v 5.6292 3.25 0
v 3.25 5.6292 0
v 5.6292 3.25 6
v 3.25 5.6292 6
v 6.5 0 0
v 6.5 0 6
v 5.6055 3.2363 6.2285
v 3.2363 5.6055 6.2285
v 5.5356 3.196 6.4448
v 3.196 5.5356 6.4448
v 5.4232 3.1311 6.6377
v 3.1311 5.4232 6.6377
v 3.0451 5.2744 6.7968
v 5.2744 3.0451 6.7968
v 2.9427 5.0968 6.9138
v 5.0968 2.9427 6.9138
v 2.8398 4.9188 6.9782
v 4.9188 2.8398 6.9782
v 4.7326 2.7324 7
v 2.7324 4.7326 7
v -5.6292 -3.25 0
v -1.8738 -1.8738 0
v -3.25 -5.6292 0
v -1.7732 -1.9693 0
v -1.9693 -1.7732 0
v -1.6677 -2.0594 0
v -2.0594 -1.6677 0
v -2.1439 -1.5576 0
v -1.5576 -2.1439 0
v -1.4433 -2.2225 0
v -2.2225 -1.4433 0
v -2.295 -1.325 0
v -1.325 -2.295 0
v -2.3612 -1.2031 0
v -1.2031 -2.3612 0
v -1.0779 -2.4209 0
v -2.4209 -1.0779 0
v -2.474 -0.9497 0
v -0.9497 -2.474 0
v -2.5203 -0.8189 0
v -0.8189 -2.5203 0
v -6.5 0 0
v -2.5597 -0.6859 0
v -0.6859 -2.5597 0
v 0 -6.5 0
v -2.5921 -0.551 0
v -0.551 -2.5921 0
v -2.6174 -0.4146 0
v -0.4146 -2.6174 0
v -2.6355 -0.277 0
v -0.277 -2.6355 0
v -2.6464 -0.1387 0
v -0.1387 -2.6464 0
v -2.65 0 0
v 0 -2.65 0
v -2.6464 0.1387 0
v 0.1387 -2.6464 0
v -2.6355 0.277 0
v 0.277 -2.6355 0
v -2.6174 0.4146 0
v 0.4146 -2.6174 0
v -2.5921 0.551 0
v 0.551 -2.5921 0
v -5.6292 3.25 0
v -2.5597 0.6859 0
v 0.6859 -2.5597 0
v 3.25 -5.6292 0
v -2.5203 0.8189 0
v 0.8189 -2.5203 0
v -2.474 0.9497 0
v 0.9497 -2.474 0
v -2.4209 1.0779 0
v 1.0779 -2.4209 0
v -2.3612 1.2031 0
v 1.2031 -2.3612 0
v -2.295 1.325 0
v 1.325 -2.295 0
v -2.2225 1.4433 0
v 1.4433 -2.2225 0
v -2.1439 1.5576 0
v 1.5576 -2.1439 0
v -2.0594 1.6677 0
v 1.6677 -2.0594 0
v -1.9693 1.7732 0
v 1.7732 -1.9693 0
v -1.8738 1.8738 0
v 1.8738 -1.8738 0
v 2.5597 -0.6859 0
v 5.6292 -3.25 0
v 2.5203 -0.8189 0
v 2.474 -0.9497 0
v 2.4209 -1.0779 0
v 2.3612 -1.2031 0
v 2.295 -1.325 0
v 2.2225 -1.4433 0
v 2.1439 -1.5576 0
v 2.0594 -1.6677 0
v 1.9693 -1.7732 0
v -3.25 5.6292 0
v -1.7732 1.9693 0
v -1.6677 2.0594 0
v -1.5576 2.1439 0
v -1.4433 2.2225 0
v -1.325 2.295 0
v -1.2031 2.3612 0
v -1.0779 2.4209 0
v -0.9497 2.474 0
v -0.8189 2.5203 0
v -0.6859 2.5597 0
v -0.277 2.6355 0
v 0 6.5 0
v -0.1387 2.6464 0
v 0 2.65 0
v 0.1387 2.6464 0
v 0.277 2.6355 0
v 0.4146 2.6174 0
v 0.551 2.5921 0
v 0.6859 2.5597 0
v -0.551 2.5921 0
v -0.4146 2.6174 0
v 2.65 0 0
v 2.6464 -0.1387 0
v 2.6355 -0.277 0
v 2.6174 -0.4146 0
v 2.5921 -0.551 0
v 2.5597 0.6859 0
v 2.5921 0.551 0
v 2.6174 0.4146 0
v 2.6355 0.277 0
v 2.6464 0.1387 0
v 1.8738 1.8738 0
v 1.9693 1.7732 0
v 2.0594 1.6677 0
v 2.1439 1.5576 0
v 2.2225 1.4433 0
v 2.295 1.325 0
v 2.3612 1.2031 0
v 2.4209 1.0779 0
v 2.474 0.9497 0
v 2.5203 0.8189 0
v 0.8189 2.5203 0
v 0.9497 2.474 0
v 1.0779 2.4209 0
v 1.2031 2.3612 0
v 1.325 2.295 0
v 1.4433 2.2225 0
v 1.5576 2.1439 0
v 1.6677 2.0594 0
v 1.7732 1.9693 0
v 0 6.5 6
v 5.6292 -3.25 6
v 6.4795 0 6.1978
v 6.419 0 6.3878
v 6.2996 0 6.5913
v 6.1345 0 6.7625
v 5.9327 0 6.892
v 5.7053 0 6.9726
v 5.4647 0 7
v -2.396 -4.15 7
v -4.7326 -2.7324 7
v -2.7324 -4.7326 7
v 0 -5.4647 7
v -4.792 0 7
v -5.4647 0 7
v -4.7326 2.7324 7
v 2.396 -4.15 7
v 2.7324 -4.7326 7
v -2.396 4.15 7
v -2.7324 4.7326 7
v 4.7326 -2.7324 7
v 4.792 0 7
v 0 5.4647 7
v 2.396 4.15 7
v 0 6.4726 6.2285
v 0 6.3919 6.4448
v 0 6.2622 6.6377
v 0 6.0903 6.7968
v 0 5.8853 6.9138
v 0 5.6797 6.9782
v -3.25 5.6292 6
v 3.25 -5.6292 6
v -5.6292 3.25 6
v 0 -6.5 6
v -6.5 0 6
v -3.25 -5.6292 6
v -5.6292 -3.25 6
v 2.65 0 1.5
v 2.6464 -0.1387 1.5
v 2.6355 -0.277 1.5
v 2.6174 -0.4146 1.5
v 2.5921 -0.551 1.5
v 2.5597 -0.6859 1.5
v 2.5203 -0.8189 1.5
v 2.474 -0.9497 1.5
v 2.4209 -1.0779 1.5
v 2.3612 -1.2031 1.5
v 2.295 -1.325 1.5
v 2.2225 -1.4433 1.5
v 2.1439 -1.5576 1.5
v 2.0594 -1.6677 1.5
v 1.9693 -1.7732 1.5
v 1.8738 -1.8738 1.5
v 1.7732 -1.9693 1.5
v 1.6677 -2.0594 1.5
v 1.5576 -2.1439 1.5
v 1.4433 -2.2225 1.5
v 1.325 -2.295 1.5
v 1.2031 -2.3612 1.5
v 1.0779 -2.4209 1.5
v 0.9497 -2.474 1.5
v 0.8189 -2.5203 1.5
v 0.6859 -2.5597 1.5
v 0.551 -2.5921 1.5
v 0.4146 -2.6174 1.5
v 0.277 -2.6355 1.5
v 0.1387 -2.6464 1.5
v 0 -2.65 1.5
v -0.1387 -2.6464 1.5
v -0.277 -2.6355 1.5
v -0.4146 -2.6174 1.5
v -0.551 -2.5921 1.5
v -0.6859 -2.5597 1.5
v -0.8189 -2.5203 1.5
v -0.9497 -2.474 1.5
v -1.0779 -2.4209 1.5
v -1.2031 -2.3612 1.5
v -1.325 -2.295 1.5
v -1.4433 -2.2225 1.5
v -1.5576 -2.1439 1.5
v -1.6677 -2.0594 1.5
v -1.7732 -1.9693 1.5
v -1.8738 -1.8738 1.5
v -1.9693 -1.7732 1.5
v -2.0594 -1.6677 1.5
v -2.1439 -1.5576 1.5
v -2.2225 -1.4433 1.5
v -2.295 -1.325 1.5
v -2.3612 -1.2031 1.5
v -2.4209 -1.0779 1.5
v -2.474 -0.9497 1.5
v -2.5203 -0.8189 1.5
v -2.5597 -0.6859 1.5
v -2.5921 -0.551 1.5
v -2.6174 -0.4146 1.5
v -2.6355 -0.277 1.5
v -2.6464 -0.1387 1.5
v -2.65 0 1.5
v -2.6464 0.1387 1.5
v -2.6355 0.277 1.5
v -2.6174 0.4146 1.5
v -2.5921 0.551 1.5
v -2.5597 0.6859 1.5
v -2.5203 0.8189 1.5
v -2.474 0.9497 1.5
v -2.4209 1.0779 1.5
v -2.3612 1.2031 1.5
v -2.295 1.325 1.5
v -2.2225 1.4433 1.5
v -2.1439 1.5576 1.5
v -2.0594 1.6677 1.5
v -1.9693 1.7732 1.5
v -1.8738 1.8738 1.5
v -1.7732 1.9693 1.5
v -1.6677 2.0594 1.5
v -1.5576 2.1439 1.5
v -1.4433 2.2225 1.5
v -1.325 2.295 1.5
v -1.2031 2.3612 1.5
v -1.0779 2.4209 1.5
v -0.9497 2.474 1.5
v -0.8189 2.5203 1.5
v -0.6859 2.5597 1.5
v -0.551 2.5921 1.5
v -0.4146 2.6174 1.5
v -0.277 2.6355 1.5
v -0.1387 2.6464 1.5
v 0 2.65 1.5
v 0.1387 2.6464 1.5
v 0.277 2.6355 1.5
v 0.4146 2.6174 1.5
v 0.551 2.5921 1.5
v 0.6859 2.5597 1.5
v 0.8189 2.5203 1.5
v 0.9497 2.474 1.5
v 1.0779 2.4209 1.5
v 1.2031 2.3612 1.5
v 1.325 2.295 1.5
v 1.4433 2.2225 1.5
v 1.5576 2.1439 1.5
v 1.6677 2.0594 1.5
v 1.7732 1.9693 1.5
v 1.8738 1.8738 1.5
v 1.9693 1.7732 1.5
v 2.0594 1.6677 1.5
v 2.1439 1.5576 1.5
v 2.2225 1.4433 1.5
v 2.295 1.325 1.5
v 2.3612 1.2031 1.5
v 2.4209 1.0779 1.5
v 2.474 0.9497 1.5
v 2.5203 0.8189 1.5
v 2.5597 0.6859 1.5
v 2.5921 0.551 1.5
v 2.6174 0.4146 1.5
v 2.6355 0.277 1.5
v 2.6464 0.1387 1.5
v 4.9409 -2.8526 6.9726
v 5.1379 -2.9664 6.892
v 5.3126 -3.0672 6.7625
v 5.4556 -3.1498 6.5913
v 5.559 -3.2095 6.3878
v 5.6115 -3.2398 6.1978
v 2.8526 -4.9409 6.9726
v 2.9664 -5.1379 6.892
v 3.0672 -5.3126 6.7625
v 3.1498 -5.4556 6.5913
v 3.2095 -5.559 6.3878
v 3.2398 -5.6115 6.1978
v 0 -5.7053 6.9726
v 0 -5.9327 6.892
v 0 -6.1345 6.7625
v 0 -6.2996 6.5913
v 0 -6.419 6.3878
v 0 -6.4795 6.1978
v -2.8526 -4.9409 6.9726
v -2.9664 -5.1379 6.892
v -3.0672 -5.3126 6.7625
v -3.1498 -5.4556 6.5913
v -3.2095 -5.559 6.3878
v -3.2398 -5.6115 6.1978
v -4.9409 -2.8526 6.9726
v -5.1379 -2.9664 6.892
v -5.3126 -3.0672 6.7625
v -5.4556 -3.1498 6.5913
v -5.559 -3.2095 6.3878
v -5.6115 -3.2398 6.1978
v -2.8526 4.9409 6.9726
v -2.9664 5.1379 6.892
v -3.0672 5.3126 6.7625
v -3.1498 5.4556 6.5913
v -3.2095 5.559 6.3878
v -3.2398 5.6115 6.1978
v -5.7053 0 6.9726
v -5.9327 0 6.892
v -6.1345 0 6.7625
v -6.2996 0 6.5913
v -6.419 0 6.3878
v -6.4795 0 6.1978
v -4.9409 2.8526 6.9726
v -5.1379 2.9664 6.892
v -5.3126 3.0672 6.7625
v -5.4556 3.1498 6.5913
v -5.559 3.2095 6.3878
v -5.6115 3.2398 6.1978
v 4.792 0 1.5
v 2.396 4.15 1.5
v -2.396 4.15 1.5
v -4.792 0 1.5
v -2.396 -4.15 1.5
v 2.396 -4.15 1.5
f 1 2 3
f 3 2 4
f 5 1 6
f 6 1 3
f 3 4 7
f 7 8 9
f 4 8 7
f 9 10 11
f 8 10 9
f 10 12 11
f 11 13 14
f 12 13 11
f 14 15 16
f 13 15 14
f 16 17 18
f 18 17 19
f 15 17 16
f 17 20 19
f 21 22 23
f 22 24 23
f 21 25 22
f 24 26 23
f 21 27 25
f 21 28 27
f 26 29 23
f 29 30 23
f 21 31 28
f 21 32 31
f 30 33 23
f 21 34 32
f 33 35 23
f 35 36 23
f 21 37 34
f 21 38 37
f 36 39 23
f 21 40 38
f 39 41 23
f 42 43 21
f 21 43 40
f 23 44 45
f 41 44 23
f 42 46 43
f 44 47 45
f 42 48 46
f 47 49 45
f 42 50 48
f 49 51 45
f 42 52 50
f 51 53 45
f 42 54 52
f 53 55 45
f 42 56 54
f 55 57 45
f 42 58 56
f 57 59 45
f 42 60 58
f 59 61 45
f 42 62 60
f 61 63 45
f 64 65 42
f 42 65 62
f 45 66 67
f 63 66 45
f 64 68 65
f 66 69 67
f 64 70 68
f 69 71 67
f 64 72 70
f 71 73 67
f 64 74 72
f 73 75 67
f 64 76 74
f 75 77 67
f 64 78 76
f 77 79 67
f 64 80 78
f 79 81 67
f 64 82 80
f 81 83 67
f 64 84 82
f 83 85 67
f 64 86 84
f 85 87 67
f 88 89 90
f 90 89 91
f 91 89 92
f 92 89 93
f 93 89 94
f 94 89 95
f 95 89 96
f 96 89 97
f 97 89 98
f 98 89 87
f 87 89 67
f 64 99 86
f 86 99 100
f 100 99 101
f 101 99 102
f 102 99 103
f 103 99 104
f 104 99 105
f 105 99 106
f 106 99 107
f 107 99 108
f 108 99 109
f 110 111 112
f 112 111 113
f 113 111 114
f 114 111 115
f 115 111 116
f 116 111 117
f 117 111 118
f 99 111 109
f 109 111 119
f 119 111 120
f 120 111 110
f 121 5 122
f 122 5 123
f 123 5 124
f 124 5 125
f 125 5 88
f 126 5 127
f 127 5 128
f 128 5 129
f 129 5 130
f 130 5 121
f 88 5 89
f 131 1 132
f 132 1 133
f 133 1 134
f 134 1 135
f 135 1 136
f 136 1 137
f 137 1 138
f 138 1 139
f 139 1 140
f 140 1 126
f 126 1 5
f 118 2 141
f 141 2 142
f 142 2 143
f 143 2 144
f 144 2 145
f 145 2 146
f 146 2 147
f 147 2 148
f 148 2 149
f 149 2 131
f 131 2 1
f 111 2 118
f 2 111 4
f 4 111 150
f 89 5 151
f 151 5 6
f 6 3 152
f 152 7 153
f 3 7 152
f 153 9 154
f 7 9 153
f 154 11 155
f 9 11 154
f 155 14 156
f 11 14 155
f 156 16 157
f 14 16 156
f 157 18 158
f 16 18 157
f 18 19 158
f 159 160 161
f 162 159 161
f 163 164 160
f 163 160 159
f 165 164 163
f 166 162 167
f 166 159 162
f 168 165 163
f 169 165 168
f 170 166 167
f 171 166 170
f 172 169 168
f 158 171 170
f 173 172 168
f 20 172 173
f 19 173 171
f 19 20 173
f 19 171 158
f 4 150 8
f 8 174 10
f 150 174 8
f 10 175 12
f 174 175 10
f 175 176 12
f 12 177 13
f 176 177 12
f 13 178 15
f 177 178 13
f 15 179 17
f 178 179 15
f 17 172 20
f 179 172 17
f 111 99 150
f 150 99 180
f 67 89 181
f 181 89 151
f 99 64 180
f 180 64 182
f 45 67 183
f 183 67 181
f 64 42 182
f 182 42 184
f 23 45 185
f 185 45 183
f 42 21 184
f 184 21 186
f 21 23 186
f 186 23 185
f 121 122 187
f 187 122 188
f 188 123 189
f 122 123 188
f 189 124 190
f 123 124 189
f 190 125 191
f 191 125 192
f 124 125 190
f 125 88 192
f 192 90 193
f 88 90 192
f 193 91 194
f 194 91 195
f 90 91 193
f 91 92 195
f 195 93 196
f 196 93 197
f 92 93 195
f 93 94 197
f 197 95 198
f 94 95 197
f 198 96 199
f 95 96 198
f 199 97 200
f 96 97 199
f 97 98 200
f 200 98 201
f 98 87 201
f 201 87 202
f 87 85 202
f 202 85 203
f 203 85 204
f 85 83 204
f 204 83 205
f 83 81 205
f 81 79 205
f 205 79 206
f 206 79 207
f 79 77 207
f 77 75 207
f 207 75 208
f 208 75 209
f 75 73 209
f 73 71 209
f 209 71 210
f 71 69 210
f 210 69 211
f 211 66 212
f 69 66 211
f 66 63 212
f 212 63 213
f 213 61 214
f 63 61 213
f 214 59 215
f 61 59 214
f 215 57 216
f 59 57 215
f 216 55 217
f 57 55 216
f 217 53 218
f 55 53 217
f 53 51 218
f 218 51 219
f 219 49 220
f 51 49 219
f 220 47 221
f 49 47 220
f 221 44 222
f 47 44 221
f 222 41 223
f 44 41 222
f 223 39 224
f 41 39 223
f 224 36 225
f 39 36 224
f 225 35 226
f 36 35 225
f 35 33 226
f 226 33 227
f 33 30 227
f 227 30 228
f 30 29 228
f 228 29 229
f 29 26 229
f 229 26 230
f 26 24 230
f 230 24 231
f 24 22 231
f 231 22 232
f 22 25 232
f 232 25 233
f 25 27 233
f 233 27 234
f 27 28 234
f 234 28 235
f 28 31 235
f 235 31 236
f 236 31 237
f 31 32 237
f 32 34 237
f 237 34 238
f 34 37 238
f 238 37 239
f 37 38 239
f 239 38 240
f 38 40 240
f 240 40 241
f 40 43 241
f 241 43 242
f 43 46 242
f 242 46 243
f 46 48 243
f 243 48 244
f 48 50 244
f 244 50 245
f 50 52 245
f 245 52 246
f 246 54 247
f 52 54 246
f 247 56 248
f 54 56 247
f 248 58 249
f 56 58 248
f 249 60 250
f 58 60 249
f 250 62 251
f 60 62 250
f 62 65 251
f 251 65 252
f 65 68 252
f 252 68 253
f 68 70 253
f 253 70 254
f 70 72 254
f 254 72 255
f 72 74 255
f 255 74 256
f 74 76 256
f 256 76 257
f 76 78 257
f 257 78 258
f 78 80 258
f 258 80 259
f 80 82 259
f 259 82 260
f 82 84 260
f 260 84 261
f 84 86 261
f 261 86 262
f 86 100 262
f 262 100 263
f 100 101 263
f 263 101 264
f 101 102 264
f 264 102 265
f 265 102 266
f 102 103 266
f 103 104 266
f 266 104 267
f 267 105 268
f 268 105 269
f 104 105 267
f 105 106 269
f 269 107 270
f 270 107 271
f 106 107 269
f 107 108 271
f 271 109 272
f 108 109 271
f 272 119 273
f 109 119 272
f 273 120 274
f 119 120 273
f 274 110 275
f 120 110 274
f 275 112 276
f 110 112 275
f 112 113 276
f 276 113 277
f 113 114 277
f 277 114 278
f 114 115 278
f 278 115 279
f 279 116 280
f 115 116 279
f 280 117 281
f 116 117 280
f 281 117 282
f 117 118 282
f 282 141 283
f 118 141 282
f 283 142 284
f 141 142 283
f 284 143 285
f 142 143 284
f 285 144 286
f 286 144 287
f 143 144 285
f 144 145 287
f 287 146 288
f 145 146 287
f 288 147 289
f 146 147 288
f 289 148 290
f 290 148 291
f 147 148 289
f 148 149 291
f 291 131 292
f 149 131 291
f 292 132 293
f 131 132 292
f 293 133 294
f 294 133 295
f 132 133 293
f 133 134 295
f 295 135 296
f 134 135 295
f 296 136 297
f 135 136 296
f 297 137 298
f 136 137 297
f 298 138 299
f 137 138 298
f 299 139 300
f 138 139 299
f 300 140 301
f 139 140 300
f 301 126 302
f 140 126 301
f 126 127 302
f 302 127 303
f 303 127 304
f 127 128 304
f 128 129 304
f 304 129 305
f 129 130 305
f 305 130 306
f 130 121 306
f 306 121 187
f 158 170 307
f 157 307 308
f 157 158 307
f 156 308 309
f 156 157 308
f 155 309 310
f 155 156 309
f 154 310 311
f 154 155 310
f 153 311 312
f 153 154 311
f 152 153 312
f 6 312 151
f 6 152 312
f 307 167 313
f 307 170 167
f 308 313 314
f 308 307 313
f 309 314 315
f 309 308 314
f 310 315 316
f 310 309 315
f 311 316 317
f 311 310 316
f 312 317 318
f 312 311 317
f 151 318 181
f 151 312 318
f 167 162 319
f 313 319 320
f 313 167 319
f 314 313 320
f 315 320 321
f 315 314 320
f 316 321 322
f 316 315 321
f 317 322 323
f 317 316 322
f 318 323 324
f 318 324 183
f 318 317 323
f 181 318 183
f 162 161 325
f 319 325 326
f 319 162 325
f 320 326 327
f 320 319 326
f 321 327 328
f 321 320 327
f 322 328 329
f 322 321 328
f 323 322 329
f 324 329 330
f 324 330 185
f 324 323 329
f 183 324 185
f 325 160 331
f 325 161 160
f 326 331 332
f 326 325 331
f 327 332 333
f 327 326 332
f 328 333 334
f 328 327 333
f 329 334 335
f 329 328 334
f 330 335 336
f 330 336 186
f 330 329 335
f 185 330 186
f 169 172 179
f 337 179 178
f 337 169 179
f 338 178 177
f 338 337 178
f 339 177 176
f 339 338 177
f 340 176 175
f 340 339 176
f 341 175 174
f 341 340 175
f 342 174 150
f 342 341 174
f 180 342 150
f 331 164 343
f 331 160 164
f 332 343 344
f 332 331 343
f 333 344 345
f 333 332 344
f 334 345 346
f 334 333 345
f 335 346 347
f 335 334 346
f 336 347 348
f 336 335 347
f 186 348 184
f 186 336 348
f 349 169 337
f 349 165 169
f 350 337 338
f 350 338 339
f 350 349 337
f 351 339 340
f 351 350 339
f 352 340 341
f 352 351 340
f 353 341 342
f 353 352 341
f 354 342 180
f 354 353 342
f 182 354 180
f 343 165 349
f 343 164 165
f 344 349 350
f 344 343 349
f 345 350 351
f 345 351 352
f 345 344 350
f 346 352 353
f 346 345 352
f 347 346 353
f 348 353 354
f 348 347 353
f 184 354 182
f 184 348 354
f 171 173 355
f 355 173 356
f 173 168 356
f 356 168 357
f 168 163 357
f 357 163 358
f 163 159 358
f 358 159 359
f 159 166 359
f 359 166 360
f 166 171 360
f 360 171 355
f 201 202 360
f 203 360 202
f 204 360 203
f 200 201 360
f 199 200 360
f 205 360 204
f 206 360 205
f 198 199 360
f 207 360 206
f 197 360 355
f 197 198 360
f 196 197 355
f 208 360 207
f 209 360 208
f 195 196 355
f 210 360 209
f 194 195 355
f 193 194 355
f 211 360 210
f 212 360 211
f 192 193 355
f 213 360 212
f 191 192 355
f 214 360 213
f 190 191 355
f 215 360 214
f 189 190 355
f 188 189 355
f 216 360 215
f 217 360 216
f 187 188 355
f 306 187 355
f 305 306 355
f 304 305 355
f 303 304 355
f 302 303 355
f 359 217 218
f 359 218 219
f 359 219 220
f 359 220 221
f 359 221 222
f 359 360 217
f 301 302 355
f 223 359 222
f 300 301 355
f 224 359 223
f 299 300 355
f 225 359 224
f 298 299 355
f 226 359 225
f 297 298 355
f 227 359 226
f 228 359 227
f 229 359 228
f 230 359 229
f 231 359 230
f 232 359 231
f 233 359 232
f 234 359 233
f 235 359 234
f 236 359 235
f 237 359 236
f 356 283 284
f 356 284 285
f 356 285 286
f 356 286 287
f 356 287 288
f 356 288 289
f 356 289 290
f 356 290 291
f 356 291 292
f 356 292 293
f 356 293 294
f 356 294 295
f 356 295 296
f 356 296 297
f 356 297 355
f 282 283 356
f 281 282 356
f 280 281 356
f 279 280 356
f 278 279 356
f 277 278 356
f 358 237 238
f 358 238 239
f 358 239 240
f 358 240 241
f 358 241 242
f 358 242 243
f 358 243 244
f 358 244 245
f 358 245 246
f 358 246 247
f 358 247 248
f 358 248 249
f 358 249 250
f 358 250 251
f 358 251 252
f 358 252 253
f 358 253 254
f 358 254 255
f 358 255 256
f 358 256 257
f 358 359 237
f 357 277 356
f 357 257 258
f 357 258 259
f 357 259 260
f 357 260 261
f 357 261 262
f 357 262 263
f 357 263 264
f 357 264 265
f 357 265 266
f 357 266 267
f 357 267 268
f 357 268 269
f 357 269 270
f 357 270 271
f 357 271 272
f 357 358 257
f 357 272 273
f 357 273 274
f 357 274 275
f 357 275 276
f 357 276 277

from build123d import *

# Parameters (mm, degrees)
PAD_DEPTH       = 7
POCKET_DEPTH    = 5.5
SKETCH002_R     = 2.65
POCKET001_DEPTH = 7.001
FILLET_R        = 1


with BuildPart() as part:
    # Sketch → Pad (new body)
    with BuildSketch(Plane.XY):
        Polygon((5.629165, 3.25), (3.25, 5.629165), (0, 6.5), (-3.25, 5.629165), (-5.629165, 3.25), (-6.5, 0), (-5.629165, -3.25), (-3.25, -5.629165), (0, -6.5), (3.25, -5.629165), (5.629165, -3.25), (6.5, 0), align=None)
    extrude(amount=PAD_DEPTH)

    # Sketch001 (on Face14 of Pad) → Pocket (cut)
    with BuildSketch(Plane.XY.offset(7)):
        Polygon((4.792007, 0), (2.396004, 4.15), (-2.396004, 4.15), (-4.792007, 0), (-2.396004, -4.15), (2.396004, -4.15), align=None)
    extrude(amount=-POCKET_DEPTH, mode=Mode.SUBTRACT)

    # Sketch002 (on DatumPlane) → Pocket001 (cut, through all)
    with BuildSketch(Plane(origin=(0, 0, 0), x_dir=(1, 0, 0), z_dir=(0, 0, -1))):
        Circle(SKETCH002_R)
    extrude(amount=-POCKET001_DEPTH, mode=Mode.SUBTRACT)

    # Fillet
    fillet_edges = [part.edges().sort_by_distance(p)[0] for p in [
        (6.064583, -1.625, 7),
        (6.064583, 1.625, 7),
        (4.439583, 4.439583, 7),
        (1.625, 6.064583, 7),
        (-1.625, 6.064583, 7),
        (-4.439583, 4.439583, 7),
        (-6.064583, 1.625, 7),
        (-6.064583, -1.625, 7),
        (-4.439583, -4.439583, 7),
        (-1.625, -6.064583, 7),
        (1.625, -6.064583, 7),
        (4.439583, -4.439583, 7),
    ]]
    fillet(fillet_edges, radius=FILLET_R)


solid = part.part
